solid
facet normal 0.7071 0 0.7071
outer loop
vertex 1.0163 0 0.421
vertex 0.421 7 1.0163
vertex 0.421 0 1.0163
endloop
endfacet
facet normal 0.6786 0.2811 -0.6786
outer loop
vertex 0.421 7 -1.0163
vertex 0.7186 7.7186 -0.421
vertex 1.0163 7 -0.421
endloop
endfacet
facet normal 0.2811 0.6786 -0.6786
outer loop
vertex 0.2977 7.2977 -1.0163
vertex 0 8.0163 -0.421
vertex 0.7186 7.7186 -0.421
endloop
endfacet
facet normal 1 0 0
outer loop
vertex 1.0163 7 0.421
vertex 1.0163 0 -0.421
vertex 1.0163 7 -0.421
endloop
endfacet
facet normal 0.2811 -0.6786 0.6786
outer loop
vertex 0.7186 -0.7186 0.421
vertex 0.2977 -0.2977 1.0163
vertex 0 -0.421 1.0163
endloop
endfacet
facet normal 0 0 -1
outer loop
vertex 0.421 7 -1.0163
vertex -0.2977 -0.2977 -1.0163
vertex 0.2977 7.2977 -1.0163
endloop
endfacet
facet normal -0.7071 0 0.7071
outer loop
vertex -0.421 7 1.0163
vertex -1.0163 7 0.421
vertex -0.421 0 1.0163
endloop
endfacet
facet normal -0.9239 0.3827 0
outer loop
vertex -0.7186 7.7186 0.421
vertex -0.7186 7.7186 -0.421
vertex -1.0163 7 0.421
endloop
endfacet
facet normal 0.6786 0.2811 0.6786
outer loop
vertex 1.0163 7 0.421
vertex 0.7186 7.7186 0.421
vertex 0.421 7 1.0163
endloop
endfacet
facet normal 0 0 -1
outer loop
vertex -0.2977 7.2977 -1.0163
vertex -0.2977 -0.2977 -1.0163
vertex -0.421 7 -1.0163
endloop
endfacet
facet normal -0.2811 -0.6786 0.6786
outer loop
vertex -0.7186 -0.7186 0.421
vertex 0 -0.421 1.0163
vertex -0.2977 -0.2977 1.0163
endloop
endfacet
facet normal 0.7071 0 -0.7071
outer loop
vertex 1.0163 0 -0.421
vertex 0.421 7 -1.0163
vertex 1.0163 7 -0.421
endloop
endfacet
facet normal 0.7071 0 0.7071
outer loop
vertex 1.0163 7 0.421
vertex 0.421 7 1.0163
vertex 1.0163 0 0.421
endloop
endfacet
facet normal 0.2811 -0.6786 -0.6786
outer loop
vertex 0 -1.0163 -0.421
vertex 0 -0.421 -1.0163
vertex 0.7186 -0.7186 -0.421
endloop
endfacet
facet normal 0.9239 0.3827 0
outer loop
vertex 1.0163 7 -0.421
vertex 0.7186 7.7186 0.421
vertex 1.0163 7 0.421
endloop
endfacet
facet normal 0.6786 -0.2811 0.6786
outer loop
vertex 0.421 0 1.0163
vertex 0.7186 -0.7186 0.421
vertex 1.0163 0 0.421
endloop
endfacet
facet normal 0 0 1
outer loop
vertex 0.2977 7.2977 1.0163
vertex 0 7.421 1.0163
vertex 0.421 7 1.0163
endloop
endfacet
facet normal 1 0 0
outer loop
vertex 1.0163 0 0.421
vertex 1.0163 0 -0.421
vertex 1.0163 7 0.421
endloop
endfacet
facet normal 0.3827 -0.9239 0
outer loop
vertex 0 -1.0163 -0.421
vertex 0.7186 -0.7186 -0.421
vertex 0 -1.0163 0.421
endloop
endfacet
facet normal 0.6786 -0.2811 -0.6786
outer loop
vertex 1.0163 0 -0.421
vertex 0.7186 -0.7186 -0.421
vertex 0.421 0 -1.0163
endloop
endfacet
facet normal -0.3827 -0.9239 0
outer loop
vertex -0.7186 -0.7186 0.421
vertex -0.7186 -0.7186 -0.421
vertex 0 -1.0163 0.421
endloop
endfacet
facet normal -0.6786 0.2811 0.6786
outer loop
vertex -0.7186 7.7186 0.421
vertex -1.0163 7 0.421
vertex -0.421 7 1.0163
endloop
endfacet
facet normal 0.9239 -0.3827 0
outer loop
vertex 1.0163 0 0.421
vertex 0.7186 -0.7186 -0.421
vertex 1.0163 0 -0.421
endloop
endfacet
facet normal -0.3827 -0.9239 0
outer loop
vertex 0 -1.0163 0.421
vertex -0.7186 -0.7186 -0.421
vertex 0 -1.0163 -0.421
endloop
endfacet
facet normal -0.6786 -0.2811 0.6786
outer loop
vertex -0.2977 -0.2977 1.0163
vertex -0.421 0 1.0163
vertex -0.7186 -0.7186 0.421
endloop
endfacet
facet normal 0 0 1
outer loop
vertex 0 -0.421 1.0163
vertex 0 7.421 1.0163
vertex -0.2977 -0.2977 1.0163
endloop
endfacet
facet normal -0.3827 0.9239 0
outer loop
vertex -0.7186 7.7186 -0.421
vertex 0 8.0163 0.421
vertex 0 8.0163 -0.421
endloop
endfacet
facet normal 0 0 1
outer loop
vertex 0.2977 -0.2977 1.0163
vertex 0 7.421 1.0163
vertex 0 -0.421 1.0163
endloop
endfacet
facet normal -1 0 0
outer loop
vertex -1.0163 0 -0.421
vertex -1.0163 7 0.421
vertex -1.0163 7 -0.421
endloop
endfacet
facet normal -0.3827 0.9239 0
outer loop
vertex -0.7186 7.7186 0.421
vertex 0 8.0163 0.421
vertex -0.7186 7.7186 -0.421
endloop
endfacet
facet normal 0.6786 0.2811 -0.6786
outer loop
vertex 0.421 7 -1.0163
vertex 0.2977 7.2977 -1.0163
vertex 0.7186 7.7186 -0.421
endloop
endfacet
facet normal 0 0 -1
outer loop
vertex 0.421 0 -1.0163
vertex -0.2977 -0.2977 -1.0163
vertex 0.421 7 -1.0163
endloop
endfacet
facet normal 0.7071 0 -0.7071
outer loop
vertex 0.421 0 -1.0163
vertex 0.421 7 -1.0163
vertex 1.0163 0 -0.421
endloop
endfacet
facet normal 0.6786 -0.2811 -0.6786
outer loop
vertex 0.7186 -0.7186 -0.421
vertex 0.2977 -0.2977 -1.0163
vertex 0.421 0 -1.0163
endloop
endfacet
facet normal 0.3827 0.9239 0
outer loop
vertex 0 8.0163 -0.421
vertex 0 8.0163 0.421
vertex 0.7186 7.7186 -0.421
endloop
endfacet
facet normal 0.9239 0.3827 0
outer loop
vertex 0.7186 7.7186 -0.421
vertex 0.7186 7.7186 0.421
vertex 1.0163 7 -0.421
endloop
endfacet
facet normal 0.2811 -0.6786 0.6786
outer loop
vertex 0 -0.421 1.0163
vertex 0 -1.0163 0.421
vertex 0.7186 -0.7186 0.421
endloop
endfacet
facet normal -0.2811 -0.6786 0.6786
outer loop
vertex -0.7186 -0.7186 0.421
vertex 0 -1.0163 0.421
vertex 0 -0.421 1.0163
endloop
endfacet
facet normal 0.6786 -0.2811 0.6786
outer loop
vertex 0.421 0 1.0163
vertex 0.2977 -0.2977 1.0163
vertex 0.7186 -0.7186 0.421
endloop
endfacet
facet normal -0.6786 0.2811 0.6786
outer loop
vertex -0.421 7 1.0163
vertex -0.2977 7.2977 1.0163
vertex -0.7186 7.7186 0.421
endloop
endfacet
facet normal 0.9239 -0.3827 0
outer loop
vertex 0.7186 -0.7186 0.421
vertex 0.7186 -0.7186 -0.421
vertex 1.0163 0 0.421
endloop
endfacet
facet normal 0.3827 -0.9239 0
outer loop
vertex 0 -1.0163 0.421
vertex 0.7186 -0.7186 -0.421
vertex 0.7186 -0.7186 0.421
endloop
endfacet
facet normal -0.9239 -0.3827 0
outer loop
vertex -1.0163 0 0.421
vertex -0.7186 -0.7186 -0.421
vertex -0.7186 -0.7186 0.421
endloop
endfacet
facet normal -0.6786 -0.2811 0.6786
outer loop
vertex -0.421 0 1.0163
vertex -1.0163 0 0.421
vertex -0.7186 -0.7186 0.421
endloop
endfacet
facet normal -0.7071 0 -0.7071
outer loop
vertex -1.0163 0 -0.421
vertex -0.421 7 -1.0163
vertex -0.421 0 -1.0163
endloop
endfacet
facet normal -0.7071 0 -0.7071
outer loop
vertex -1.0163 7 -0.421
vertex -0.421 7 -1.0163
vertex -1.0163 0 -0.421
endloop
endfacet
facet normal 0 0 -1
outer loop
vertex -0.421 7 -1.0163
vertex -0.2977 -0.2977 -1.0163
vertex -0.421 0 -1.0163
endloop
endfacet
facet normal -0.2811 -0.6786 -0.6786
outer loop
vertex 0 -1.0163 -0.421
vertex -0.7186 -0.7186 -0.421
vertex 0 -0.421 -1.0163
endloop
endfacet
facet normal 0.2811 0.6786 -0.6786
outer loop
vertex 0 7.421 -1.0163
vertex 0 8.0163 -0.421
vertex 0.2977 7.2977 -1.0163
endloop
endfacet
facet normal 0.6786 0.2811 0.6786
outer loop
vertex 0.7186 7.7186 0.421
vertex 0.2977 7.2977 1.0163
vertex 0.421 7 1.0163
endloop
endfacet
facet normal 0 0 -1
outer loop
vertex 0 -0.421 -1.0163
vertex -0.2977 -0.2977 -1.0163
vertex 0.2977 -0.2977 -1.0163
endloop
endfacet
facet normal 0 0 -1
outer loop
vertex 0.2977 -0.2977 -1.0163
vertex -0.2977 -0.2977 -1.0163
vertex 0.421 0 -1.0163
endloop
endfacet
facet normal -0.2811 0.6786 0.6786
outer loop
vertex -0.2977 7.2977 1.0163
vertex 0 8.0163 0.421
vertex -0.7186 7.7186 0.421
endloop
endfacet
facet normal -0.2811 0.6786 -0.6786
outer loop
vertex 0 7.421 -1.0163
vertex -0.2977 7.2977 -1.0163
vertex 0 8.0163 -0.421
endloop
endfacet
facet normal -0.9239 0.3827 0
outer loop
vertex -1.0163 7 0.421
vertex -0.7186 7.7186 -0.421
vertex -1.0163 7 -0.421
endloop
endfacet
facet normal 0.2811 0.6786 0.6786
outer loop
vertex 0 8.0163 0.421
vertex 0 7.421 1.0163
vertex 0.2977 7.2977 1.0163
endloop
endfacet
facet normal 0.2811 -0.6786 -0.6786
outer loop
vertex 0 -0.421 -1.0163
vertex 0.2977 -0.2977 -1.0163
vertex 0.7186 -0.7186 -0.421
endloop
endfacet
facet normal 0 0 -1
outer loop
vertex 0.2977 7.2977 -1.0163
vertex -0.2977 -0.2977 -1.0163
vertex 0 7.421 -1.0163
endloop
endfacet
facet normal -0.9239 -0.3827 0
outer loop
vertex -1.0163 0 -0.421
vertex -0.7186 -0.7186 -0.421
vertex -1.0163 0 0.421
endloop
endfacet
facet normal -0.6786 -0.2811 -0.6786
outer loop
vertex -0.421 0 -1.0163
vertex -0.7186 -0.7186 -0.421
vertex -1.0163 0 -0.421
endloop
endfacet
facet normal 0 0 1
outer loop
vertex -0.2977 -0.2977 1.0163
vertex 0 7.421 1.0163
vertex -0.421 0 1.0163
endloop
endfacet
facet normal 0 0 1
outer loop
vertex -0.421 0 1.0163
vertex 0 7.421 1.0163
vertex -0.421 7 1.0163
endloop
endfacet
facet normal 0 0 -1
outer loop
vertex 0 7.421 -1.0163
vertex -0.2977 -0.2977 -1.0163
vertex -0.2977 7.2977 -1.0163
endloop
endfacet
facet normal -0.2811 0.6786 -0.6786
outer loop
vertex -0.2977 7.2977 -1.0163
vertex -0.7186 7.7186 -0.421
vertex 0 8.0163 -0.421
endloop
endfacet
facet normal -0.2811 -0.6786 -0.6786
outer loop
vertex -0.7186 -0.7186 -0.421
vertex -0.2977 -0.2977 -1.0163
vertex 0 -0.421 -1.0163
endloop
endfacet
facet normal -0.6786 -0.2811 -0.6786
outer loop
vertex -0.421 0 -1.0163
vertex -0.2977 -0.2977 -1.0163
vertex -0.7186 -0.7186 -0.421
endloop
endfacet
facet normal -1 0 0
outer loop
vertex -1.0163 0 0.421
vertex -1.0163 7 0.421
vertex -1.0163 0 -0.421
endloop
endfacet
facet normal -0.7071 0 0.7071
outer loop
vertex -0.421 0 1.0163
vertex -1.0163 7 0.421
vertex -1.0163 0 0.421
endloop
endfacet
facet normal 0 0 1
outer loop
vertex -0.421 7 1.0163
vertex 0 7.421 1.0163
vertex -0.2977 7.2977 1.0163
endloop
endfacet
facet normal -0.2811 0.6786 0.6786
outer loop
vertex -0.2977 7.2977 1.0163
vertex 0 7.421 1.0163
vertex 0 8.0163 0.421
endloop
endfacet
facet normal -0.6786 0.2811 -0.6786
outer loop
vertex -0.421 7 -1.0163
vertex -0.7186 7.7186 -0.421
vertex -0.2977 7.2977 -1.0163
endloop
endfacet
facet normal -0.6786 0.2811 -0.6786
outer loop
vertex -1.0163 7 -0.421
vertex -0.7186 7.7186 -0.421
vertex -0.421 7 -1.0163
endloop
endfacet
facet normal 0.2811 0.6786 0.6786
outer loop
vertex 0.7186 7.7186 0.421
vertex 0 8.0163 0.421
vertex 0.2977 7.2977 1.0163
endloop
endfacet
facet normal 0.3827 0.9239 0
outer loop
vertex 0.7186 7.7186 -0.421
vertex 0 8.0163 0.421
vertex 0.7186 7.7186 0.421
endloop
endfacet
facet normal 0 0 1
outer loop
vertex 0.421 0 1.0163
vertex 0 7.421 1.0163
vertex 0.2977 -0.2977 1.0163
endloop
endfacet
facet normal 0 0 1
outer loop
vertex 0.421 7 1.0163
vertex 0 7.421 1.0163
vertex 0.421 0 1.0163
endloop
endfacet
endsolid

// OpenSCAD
module rod(a, b, r) {
        hull() {
            translate(a) sphere(r,$fn=8);
            translate(b) sphere(r,$fn=8);
        }
    }

rod([0,0,0],[0,7,0],1.1);
